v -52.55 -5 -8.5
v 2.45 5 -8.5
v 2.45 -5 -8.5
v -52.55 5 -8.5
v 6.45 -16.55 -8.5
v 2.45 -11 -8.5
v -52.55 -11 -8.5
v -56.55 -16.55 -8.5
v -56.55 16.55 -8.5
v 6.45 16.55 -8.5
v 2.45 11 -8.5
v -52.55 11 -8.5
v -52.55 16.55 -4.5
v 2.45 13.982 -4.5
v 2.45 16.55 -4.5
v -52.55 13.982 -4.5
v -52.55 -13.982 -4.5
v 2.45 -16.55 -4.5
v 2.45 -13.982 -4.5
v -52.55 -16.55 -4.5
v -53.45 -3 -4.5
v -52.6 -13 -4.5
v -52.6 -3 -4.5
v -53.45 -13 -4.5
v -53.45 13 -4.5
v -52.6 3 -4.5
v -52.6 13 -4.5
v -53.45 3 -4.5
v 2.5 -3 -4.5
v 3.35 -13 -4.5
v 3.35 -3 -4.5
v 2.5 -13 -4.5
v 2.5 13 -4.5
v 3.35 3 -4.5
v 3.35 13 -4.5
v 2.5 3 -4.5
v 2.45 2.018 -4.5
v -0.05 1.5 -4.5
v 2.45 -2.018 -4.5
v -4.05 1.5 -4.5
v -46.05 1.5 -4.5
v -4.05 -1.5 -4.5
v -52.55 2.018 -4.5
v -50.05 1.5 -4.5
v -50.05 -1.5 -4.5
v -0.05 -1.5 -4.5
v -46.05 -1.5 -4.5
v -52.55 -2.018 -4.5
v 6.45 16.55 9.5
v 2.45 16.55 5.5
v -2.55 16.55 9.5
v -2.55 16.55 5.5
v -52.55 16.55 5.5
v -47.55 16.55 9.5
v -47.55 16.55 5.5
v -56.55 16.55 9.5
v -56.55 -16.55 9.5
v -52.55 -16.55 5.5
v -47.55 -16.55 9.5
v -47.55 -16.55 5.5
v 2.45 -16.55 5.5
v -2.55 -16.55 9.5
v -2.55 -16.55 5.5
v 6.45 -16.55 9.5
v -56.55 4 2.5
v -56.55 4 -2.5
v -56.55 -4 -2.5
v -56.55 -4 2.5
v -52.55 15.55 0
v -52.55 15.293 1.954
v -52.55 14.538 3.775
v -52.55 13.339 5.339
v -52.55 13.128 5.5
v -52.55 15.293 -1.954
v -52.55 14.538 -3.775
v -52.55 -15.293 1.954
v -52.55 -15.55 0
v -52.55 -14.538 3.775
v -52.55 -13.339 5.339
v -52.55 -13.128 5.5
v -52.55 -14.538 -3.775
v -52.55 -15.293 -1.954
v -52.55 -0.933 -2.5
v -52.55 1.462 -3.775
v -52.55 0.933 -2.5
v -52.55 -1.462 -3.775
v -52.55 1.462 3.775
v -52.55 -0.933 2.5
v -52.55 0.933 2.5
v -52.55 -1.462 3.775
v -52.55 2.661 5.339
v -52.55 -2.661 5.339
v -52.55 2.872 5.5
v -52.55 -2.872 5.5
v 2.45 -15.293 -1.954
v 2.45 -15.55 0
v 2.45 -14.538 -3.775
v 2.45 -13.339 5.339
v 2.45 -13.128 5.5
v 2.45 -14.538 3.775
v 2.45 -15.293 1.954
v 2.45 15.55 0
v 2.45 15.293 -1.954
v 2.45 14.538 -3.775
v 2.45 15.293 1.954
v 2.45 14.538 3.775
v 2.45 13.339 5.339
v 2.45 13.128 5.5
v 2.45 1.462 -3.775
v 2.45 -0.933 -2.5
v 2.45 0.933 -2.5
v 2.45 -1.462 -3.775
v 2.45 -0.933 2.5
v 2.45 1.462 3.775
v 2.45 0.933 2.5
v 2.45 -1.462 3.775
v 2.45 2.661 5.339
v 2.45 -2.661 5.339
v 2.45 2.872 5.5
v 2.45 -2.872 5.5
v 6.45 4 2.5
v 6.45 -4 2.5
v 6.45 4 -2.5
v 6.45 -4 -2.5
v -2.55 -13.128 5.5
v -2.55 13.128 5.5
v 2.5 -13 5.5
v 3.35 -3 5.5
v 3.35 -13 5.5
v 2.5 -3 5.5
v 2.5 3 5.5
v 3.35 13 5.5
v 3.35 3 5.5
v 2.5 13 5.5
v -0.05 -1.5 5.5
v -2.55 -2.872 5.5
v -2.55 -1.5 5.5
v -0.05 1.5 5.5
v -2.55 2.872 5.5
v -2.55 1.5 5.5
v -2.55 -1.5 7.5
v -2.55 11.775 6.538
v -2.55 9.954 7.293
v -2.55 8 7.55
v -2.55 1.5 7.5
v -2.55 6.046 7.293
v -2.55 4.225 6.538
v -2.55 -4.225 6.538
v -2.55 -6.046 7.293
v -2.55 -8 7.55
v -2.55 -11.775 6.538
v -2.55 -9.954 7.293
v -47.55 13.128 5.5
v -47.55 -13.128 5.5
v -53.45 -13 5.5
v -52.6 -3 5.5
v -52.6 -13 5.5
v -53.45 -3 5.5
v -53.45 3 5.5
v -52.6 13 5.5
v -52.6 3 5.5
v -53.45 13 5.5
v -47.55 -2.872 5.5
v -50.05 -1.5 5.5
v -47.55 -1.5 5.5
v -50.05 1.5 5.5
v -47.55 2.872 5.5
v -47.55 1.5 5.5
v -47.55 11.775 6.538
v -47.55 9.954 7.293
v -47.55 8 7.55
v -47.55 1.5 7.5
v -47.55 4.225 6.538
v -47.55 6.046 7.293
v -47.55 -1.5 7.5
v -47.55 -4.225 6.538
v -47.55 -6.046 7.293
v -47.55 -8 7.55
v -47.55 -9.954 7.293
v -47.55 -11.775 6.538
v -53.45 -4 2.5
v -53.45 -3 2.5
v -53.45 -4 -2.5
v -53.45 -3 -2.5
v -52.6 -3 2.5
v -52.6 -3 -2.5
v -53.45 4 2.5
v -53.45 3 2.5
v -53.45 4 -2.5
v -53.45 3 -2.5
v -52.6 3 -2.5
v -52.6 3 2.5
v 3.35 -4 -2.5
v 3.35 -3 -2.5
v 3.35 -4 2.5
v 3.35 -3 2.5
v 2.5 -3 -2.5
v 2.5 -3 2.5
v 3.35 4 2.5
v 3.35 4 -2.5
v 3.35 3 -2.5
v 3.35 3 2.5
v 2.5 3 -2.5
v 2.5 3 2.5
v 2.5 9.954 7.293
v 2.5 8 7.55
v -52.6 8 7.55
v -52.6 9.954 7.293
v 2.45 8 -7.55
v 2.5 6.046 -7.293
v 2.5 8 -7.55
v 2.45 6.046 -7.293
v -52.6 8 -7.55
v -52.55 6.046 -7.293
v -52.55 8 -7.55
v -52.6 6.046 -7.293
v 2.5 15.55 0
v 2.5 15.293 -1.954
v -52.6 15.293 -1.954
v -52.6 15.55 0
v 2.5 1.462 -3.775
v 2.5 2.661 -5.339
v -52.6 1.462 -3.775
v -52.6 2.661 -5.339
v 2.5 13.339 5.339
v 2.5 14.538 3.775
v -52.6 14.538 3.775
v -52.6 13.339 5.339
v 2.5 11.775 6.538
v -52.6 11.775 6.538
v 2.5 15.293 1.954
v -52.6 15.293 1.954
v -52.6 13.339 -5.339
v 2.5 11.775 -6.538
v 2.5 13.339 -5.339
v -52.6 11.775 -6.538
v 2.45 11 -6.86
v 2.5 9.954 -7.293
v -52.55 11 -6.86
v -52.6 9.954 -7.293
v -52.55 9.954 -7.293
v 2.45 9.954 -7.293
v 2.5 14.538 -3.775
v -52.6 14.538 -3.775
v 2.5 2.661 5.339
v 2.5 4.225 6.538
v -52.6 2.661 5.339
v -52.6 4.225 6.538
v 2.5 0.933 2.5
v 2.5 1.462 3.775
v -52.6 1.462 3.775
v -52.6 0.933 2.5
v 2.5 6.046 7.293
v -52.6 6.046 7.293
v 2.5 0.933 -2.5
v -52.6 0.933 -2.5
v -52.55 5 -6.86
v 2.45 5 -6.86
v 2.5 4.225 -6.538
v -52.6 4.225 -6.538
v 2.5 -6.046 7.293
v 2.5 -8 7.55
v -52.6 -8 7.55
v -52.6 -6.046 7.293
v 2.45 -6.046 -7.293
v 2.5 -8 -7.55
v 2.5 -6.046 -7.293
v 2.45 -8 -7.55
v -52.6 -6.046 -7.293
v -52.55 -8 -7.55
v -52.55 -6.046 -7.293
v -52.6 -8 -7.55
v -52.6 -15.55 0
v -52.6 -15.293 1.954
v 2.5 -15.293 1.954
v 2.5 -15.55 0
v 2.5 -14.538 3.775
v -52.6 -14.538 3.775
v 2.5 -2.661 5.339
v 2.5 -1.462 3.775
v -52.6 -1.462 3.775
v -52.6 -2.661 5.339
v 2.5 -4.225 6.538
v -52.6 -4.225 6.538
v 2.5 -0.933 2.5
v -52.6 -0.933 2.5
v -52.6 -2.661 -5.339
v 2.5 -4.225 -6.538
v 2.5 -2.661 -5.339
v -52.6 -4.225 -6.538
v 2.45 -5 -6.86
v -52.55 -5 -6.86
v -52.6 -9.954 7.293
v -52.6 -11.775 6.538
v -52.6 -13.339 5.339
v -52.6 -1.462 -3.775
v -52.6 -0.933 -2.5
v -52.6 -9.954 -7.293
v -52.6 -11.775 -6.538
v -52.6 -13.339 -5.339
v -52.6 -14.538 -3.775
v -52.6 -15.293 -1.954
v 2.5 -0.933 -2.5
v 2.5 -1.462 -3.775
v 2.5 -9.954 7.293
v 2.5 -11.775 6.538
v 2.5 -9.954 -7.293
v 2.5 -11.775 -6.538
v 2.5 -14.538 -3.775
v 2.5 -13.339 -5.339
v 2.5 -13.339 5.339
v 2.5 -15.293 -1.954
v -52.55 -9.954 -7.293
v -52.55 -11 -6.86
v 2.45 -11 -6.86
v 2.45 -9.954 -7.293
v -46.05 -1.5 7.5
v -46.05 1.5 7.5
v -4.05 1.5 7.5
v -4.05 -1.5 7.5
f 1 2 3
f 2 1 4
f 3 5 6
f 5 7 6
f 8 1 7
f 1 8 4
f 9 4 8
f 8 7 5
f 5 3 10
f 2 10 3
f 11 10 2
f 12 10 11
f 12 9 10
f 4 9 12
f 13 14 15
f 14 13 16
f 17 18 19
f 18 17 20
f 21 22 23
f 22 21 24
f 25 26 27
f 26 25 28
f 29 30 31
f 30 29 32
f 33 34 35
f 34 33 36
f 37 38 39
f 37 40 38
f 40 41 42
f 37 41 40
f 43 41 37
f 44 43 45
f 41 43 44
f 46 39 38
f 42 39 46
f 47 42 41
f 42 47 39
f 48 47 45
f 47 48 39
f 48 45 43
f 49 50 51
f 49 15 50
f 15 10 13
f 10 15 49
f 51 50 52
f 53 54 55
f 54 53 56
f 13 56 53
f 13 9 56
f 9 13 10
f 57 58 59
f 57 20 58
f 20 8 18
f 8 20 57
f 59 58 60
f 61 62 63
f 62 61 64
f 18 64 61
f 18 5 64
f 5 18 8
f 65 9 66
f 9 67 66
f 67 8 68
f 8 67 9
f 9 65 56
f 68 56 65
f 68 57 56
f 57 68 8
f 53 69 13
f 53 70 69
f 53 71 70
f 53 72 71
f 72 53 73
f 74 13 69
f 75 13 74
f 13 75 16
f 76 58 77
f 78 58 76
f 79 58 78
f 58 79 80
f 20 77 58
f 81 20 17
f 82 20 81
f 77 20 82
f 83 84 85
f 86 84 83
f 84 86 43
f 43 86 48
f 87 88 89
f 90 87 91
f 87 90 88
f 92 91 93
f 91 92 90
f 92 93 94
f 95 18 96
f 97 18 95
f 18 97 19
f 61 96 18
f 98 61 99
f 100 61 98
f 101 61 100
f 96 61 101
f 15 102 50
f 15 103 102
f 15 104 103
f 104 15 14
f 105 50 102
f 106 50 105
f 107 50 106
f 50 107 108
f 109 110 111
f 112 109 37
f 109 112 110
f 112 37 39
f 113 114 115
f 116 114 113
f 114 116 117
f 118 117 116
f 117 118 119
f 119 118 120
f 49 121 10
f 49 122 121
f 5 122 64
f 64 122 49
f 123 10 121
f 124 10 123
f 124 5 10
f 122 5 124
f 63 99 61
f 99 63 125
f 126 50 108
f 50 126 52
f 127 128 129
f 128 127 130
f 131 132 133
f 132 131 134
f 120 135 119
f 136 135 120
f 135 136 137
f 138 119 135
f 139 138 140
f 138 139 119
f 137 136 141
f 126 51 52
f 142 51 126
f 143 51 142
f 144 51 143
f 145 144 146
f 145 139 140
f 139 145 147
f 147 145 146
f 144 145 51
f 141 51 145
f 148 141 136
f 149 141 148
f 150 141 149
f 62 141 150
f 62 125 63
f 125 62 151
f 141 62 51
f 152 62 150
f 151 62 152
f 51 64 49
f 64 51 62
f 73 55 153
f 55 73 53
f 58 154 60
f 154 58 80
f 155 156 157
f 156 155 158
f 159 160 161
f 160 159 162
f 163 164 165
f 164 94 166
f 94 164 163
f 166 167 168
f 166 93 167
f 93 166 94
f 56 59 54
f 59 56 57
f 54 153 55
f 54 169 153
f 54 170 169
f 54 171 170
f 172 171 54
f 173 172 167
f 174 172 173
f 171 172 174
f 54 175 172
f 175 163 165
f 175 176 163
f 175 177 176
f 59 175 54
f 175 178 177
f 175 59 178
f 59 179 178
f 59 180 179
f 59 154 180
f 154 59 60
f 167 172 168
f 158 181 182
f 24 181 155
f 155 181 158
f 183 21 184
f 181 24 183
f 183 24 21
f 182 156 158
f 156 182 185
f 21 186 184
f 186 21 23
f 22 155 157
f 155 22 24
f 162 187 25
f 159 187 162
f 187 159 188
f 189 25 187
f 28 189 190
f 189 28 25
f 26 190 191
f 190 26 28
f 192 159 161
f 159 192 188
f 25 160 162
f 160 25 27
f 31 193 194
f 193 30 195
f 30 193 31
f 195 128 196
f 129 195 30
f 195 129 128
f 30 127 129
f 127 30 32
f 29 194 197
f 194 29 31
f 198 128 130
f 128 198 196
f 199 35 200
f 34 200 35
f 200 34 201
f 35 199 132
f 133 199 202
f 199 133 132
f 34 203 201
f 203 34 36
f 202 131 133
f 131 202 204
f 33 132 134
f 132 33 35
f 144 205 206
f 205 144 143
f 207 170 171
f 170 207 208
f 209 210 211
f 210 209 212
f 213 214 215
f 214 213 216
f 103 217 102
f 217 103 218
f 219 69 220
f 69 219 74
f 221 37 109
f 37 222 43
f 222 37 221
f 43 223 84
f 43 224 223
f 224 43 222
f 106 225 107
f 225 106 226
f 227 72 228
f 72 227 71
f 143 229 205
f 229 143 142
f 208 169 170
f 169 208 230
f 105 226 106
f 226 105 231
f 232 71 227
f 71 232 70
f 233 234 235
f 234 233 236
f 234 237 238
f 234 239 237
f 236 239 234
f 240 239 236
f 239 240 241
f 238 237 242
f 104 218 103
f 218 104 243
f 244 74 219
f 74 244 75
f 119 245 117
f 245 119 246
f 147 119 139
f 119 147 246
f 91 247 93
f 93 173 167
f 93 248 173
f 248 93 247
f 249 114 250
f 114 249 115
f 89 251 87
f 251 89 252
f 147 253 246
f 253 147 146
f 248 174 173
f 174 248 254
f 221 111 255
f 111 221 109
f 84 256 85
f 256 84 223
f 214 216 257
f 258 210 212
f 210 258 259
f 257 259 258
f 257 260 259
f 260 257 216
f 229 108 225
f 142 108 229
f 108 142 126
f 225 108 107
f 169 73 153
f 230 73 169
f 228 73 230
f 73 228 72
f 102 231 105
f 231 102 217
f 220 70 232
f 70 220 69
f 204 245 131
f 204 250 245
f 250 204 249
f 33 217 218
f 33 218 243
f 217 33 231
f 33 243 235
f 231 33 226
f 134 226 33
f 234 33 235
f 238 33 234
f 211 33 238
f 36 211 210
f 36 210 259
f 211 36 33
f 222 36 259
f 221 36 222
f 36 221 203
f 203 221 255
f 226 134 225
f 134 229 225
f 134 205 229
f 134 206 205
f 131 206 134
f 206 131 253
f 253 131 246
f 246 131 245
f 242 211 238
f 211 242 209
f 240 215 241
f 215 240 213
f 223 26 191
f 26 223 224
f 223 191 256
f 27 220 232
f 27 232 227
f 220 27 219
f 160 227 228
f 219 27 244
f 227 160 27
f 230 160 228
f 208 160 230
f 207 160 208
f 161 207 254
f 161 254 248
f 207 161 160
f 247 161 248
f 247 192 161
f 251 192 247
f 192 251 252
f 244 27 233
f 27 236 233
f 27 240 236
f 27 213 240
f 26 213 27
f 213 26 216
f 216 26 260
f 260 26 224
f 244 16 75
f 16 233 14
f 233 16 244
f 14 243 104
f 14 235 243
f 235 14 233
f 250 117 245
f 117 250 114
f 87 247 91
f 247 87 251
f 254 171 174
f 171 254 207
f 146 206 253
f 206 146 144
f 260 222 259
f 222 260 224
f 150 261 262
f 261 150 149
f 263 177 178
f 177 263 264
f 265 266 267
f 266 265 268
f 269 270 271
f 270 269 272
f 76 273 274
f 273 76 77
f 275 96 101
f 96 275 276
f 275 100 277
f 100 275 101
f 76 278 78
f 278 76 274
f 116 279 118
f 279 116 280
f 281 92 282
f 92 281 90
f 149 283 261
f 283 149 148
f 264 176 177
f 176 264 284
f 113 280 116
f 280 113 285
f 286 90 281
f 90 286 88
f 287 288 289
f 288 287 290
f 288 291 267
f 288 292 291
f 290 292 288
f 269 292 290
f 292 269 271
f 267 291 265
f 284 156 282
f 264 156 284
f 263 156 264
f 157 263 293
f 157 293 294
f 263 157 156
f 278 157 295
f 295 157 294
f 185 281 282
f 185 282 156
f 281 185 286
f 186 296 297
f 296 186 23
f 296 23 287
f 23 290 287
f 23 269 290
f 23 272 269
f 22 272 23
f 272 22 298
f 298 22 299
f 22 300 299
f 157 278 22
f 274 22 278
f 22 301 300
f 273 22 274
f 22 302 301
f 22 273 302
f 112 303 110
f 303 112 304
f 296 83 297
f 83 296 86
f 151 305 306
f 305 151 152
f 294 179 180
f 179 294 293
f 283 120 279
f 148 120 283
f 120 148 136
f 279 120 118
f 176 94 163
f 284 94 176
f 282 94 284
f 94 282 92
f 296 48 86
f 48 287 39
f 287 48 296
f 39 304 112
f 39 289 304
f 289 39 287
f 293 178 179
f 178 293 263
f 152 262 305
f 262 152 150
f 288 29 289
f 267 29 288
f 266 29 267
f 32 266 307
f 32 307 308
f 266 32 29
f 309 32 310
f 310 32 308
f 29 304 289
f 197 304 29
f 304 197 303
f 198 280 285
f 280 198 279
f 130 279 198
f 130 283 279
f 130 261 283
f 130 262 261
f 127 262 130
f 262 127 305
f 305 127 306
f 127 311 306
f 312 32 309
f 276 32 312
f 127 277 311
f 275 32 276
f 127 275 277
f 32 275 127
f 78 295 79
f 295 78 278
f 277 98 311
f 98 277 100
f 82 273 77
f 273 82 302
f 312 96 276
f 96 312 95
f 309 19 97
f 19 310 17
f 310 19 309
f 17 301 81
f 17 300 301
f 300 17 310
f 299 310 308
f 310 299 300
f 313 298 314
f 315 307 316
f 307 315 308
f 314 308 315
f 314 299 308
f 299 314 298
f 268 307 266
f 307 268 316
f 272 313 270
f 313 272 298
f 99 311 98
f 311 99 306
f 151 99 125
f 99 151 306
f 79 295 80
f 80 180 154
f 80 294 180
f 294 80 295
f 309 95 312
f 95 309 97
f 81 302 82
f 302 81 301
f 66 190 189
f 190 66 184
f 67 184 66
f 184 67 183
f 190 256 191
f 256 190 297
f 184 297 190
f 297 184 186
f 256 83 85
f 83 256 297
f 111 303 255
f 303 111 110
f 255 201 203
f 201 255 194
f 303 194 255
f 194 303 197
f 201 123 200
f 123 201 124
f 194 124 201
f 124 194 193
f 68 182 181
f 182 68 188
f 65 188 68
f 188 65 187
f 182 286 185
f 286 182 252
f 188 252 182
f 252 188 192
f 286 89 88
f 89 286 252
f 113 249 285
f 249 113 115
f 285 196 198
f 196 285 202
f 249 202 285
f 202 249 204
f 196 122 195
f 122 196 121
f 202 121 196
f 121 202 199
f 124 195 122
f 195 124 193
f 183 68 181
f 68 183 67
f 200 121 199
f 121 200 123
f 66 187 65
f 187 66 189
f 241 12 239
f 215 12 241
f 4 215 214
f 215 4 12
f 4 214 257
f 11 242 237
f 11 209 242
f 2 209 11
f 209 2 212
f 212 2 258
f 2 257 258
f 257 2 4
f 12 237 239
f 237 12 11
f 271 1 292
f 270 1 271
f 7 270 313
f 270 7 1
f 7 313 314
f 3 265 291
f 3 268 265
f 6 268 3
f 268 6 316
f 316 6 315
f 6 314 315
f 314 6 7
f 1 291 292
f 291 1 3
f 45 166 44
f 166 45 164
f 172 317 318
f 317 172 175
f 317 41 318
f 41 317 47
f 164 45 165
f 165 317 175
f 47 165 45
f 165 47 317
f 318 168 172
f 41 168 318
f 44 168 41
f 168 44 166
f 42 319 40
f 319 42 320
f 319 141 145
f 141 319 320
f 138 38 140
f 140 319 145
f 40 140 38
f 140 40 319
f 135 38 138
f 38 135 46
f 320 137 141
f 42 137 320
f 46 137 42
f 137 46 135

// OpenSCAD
//$fn = 64;

rotate([0, -90, 0]) translate([0, 0, 50.1/2]){
    
    union(){
        difference(){
            union(){
                translate([-6.5, 0, 0]) cube([4, 33.1, 55.1], true);
                translate([0, 0, 29.5]) cube([17, 33.1, 4], true);
                translate([0, 0, -29.5]) cube([17, 33.1, 4], true);
                
                color("green", 1.0) translate([7.5, 0, -27]) cube([4, 33.1, 9], true);
                color("green", 1.0) translate([7.5, 0, 27]) cube([4, 33.1, 9], true);
            }
            color("green", 1.0) translate([0.5, -8, 27.9]) cube([10, 10, 1], true);
            color("green", 1.0) translate([0.5, 8, 27.9]) cube([10, 10, 1], true);
            
            color("green", 1.0) translate([0.5, -8, -27.9]) cube([10, 10, 1], true);
            color("green", 1.0) translate([0.5, 8, -27.9]) cube([10, 10, 1], true);
            // 14.1, 50.1
            color("red", 1.0) translate([0, 8, 0]) rotate([0, 0, 0]) cylinder(h=55.1, r=7.55, center=true);
            color("red", 1.0) translate([0, -8, 0]) rotate([0, 0, 0]) cylinder(h=55.1, r=7.55, center=true);
            
            color("orange", 1.0) translate([0, 0, 0]) cube([5, 8, 65], true);
            
            color("orange", 1.0) translate([-4, 8, 0]) cube([11, 6, 55], true);
            color("orange", 1.0) translate([-4, -8, 0]) cube([11, 6, 55], true);
        }
        
        color("blue", 1.0) translate([0, 0, 23]) cube([15, 3, 4], true);
        color("blue", 1.0) translate([0, 0, -23]) cube([15, 3, 4], true);
    }
}
